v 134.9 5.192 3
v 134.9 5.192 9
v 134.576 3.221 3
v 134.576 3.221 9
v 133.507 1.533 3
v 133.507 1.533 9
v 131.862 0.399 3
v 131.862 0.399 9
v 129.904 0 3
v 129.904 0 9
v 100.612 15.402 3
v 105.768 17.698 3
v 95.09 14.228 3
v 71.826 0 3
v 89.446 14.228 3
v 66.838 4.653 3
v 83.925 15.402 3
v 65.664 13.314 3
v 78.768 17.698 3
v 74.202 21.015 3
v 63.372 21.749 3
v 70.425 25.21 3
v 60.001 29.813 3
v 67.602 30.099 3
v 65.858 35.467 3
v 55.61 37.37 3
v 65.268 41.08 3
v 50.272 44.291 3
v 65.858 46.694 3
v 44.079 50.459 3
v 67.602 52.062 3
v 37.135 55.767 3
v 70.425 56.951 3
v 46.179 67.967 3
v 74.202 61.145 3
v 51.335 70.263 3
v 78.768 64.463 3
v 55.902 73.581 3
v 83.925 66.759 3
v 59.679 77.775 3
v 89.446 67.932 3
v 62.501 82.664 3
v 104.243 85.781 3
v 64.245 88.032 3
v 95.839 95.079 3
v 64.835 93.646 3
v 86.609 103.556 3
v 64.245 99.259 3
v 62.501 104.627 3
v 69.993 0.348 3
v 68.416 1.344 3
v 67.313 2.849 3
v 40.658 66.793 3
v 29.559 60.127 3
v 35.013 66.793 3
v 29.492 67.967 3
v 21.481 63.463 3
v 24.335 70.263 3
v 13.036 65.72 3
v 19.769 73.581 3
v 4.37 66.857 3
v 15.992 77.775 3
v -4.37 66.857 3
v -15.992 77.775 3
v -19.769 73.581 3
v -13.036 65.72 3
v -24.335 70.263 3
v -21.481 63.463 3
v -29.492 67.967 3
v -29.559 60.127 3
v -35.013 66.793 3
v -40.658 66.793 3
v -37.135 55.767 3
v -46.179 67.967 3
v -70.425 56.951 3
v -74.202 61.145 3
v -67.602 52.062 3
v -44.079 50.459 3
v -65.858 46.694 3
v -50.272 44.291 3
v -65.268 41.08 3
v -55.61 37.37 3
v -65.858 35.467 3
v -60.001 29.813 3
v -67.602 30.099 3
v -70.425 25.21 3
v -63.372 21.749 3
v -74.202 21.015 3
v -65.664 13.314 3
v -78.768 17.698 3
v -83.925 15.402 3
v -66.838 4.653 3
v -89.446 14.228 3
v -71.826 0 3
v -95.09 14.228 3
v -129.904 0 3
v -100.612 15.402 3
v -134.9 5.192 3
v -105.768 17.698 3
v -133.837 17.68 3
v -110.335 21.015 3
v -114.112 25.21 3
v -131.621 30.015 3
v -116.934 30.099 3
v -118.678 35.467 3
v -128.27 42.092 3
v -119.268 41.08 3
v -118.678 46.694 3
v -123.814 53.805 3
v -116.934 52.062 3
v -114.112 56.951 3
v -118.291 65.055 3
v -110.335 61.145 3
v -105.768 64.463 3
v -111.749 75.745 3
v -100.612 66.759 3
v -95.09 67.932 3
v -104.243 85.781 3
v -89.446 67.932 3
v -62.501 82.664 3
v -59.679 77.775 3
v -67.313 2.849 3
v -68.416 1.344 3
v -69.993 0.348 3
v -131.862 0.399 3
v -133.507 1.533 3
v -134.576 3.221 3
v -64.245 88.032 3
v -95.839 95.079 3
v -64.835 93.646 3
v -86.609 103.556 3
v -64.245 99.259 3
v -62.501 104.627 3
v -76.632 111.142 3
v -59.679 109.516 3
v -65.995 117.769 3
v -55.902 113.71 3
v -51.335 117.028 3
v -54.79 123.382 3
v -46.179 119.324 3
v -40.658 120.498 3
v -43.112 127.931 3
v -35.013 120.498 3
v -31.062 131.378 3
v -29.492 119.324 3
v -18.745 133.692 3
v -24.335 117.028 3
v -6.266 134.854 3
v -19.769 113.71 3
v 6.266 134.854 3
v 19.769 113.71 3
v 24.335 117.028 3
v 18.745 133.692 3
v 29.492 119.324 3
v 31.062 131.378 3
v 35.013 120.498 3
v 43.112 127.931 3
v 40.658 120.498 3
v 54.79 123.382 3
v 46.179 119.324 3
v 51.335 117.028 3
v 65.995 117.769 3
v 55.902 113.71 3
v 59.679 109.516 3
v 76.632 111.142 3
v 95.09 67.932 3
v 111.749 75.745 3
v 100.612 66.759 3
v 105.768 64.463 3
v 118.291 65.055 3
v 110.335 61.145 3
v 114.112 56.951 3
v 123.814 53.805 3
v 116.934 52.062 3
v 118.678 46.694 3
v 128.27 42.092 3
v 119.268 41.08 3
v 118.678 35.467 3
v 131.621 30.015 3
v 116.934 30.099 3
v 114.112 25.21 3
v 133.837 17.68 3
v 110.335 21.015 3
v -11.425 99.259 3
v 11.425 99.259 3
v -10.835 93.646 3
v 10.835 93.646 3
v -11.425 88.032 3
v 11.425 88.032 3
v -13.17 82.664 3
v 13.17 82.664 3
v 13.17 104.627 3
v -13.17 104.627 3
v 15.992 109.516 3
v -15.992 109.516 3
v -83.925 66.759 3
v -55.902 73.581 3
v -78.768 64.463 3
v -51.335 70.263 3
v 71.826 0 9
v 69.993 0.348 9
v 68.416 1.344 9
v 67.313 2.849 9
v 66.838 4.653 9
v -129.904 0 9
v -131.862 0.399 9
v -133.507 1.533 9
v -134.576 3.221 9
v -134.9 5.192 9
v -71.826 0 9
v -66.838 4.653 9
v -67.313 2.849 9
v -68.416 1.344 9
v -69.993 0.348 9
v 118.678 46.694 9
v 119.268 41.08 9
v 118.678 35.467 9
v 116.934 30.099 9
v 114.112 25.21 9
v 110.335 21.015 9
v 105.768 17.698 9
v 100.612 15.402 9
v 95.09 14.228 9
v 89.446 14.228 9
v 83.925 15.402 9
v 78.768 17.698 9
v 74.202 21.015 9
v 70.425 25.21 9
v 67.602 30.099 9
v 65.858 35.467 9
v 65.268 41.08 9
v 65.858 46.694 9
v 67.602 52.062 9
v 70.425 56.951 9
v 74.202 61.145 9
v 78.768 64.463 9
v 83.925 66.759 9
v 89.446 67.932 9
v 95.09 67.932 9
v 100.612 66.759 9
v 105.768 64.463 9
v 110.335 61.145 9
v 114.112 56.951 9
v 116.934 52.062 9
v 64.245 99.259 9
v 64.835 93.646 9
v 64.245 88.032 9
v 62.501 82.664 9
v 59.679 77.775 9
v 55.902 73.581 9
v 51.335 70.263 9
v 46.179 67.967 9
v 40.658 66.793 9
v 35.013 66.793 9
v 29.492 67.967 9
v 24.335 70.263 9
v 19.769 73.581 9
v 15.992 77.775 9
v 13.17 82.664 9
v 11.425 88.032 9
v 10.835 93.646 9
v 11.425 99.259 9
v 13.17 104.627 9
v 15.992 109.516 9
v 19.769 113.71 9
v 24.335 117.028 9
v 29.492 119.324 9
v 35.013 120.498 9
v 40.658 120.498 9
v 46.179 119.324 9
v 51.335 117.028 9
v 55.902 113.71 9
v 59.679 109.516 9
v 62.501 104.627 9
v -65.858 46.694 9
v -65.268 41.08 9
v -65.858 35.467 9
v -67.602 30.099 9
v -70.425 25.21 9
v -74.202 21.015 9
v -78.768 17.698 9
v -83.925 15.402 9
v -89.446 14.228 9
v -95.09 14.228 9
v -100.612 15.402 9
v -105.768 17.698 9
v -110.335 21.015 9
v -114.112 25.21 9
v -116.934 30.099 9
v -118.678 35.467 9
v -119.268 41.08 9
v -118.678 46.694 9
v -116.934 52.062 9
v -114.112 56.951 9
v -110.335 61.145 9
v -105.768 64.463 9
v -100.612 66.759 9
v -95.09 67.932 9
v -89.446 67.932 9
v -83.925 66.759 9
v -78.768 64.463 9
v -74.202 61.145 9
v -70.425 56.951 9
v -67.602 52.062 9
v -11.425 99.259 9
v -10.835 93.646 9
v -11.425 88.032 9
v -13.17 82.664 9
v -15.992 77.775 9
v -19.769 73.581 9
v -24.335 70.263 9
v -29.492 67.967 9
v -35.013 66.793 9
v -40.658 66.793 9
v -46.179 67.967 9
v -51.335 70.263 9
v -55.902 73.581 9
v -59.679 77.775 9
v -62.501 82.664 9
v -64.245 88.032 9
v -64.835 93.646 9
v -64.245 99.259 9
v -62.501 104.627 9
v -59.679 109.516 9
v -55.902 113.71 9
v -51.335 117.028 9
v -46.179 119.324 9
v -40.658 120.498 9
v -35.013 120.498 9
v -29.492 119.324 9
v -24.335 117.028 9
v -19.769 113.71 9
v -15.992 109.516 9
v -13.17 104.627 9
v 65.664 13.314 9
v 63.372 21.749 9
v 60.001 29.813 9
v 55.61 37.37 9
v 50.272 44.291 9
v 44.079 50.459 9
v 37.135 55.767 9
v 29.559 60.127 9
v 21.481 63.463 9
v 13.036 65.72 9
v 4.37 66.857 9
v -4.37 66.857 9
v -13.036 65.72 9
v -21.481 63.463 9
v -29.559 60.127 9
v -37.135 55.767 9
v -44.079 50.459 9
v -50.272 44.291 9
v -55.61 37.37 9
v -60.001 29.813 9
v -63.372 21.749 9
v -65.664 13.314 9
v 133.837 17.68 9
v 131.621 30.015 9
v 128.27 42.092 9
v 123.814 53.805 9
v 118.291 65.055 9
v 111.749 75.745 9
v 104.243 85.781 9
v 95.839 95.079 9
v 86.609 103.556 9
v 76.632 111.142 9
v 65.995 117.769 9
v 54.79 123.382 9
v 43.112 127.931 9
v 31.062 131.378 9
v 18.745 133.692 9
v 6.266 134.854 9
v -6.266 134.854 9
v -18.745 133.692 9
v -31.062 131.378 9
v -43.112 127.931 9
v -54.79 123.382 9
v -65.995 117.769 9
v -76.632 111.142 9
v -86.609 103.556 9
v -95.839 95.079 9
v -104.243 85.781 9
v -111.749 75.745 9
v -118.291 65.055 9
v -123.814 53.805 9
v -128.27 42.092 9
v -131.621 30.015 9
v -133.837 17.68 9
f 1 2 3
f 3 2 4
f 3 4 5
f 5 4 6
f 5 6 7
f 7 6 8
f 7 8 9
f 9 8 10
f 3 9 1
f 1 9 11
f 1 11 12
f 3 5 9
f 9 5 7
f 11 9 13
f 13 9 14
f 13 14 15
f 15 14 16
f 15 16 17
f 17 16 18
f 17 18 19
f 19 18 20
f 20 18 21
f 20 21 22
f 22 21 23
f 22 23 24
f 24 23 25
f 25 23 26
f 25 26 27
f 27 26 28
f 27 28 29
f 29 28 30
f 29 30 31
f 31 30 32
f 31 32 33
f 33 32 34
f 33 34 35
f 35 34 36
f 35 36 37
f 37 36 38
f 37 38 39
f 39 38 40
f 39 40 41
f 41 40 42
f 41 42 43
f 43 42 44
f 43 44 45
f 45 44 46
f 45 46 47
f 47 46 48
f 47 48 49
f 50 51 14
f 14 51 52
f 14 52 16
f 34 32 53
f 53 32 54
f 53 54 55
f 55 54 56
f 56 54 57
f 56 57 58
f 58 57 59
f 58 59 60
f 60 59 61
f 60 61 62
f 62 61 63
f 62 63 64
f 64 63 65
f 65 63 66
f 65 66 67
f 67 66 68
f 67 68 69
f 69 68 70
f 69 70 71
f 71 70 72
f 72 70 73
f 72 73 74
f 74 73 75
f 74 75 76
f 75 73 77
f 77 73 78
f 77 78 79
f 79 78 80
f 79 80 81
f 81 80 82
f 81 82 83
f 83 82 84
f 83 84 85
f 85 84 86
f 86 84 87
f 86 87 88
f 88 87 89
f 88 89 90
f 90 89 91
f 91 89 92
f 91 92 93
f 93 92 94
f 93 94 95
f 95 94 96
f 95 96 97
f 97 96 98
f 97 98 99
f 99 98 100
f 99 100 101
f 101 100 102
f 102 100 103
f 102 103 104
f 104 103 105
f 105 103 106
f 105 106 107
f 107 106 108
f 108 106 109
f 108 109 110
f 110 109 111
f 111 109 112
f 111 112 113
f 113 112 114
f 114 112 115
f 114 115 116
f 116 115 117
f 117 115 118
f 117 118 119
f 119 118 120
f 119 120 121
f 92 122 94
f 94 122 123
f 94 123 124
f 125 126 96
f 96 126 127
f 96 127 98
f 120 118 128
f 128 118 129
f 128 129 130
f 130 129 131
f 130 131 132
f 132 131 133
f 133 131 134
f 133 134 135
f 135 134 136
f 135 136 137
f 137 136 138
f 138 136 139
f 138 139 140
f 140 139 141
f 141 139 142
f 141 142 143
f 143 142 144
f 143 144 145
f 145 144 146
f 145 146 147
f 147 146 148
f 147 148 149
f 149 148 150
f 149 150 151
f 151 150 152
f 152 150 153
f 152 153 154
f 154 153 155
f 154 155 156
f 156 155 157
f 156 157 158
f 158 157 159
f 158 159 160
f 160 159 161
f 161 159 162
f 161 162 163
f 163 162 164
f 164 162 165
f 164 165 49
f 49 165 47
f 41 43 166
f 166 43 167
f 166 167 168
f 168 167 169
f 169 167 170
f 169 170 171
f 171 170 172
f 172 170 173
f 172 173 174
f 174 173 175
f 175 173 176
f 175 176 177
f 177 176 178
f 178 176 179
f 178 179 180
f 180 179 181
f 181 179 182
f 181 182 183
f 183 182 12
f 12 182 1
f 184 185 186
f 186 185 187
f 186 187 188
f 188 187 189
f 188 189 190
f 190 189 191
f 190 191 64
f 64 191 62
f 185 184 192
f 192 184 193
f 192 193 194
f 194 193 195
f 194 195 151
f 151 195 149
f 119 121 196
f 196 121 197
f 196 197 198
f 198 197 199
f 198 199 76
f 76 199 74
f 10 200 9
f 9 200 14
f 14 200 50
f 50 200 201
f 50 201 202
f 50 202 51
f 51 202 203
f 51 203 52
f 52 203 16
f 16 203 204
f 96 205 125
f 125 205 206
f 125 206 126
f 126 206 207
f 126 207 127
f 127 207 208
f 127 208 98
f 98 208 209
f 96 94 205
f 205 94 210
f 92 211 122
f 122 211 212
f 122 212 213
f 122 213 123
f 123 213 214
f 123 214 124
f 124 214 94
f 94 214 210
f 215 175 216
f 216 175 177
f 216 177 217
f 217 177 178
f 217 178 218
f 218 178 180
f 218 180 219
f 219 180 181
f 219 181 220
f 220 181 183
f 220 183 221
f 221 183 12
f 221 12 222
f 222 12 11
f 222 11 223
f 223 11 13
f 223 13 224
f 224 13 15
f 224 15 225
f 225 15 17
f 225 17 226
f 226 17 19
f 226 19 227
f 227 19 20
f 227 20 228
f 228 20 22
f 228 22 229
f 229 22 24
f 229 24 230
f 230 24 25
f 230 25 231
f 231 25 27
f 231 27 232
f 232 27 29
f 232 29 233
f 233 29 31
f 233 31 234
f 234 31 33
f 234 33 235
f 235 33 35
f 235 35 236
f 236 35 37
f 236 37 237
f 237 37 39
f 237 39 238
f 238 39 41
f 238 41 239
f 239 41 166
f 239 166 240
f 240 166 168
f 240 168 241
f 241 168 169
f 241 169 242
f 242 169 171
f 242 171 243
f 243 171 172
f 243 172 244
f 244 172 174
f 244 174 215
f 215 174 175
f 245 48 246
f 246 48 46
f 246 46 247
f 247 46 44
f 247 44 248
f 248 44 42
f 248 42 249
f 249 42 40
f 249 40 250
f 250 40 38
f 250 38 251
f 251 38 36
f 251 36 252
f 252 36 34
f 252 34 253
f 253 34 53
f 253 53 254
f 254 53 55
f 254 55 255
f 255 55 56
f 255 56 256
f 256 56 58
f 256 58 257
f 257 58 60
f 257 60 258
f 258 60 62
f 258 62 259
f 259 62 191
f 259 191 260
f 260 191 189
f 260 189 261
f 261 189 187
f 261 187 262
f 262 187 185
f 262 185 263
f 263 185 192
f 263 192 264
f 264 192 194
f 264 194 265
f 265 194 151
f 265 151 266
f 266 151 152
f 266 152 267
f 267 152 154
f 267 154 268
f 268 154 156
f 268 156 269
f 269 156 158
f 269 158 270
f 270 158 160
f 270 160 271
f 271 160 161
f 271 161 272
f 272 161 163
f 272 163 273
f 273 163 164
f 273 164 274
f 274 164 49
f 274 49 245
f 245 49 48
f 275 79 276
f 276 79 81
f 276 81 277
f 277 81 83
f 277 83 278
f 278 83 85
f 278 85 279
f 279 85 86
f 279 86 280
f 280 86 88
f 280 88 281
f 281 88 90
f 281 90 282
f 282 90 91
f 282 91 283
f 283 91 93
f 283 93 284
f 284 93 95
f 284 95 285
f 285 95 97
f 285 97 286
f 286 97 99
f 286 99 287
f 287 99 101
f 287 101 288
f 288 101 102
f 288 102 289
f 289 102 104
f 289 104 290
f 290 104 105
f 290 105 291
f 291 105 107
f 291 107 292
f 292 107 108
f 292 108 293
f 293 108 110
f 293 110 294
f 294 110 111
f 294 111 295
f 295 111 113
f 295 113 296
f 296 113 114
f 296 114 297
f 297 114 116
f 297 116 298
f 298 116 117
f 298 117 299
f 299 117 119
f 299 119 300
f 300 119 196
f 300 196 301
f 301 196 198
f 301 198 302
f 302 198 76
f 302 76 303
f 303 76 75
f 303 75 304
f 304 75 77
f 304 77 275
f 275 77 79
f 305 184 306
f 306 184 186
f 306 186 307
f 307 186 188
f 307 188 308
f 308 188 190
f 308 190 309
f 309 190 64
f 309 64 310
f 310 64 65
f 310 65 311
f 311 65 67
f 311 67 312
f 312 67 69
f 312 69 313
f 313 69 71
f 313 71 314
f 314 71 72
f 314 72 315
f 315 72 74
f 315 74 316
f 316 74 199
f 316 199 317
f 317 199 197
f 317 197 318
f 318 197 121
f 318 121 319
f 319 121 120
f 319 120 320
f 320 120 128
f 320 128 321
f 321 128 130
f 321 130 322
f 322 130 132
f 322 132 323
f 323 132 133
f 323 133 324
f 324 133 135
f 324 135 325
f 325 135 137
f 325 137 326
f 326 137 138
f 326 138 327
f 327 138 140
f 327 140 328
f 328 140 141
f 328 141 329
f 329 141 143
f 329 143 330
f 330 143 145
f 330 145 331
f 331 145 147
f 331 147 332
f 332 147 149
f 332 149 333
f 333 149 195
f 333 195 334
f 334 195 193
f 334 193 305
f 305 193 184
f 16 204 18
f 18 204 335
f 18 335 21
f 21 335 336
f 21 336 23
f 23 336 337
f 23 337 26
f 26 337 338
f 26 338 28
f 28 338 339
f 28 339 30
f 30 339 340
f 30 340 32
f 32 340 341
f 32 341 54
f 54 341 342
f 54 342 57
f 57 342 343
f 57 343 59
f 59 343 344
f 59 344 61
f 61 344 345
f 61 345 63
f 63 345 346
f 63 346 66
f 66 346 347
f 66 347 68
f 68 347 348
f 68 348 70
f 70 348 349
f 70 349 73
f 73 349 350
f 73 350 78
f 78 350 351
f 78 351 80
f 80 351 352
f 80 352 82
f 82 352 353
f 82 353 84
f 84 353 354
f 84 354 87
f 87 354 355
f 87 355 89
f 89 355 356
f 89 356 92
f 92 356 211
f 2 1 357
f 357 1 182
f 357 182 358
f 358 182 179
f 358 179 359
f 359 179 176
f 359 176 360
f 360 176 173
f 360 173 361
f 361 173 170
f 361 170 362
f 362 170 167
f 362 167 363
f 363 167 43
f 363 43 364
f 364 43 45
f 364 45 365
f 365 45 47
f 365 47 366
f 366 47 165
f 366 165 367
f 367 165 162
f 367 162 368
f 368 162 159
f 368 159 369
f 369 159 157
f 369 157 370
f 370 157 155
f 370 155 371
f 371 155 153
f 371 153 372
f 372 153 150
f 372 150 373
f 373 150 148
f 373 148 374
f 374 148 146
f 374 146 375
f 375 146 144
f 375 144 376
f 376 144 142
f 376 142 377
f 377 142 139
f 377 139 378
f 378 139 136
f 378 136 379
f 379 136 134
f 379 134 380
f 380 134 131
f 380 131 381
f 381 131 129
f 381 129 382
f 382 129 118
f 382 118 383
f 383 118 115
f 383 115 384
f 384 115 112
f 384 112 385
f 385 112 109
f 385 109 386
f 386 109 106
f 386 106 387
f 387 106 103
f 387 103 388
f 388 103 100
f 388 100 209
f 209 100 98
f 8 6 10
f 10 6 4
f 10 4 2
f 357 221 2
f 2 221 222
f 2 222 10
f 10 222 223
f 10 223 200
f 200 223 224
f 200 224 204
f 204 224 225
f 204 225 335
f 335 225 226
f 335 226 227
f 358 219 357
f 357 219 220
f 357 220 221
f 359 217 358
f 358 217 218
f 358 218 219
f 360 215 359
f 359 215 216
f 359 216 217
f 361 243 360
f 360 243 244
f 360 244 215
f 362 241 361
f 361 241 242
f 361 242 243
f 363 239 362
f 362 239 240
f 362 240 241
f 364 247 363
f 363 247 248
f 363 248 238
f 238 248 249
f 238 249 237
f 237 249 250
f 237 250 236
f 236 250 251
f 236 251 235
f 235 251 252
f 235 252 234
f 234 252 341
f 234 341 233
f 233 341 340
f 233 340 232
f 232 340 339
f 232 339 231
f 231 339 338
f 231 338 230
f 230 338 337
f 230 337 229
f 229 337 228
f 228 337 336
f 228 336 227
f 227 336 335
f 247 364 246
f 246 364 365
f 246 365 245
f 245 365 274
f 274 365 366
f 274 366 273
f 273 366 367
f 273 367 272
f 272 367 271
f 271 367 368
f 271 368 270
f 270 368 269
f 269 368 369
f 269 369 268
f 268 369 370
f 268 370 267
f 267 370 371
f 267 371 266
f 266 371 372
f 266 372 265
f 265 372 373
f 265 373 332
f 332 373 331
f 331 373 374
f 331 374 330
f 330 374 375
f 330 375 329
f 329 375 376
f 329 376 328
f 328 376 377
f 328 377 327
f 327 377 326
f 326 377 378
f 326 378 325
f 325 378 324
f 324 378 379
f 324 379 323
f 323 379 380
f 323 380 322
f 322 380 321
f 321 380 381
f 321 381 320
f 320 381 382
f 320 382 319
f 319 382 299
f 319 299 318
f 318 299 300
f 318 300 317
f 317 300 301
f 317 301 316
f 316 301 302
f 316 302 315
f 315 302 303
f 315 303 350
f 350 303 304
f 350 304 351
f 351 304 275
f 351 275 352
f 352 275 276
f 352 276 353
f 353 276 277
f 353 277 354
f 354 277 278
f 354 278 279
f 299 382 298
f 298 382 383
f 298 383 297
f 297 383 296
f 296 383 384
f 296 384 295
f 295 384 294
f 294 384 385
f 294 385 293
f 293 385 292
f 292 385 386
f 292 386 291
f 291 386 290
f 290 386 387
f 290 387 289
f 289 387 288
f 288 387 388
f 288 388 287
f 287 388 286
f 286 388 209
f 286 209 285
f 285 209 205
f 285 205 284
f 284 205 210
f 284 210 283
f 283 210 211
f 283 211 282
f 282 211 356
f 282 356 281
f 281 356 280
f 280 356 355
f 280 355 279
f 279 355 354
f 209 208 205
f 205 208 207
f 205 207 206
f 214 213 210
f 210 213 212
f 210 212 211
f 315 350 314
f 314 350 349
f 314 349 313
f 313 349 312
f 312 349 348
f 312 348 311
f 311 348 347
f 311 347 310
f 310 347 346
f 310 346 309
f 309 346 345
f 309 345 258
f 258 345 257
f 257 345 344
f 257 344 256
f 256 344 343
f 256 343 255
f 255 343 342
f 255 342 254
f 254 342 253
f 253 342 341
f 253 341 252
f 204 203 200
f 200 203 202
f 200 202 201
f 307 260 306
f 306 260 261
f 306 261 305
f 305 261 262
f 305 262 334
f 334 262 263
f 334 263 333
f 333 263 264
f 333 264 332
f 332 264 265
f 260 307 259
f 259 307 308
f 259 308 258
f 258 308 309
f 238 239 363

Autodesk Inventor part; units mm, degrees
ref_plane "YZ Plane" through (0, 0, 0) normal (1, 0, 0) x (0, 1, 0)
ref_plane "XZ Plane" through (0, 0, 0) normal (0, 1, 0) x (-1, 0, 0)
ref_plane "РабПлоскость1" through (0, 0, 3) normal (0, 0, 1) x (1, 0, 0)
sketch "Эскиз1" plane through (0, 0, 3) normal (0, 0, 1) x (1, 0, 0)
  circle A0 centre (0, 0) radius 135 projected
  circle A1 centre (0, 0) radius 101 construction
  line L0 (0, 0) -> (0, 184.3698) construction
  circle A2 centre (-37.8353, 93.6456) radius 27
  circle A3 centre (-92.2681, 41.0804) radius 27
  circle A4 centre (37.8353, 93.6456) radius 27
  circle A5 centre (92.2681, 41.0804) radius 27
  line L1 (0, 0) -> (37.8353, 93.6456) construction
  line L2 (0, 0) -> (92.2681, 41.0804) construction
  circle A6 centre (0, 0) radius 67
  line L3 (-135, 0) -> (135, 0)
  circle A7 centre (120, 0) radius 1.6 construction
  circle A8 centre (-120, 0) radius 1.6 construction
  circle A9 centre (120, 0) radius 8 construction
  circle A10 centre (-120, 0) radius 8 construction
  circle A11 centre (0, 120) radius 1.6 construction
  circle A12 centre (0, 120) radius 8 construction
  line L4 (0, 0) -> (-116.9134, -67.5) construction
  line L5 (0, 0) -> (116.9134, -67.5) construction
  point P0 (67, 0)
  point P1 (-67, 0)
  point P2 (-128, 0)
  point P3 (-112, 0)
  point P4 (112, 0)
  point P5 (128, 0)
  dimension "d0" = 54
  dimension "d3" = 202
  dimension "d4" = 34
  dimension "d5" = 34
  dimension "d9" = 16
  dimension "d11" = 120
  dimension "d12" = 22
  dimension "d13" = 44
extrude "Выдавливание1" add sketch "Эскиз1" along normal blind 6 contours L3 A6 A0 picked at (99.1742, 4.7591)
fillet "Сопряжение1" radius 5 4 edges at (-67, 0, 6) (-135, 0, 6) (67, 0, 6) (135, 0, 6)
equation "\"d5\" = d4"
equation "\"d13\" = 2 * d12"
properties part number "Фиксатор" material "По умолчанию1"
